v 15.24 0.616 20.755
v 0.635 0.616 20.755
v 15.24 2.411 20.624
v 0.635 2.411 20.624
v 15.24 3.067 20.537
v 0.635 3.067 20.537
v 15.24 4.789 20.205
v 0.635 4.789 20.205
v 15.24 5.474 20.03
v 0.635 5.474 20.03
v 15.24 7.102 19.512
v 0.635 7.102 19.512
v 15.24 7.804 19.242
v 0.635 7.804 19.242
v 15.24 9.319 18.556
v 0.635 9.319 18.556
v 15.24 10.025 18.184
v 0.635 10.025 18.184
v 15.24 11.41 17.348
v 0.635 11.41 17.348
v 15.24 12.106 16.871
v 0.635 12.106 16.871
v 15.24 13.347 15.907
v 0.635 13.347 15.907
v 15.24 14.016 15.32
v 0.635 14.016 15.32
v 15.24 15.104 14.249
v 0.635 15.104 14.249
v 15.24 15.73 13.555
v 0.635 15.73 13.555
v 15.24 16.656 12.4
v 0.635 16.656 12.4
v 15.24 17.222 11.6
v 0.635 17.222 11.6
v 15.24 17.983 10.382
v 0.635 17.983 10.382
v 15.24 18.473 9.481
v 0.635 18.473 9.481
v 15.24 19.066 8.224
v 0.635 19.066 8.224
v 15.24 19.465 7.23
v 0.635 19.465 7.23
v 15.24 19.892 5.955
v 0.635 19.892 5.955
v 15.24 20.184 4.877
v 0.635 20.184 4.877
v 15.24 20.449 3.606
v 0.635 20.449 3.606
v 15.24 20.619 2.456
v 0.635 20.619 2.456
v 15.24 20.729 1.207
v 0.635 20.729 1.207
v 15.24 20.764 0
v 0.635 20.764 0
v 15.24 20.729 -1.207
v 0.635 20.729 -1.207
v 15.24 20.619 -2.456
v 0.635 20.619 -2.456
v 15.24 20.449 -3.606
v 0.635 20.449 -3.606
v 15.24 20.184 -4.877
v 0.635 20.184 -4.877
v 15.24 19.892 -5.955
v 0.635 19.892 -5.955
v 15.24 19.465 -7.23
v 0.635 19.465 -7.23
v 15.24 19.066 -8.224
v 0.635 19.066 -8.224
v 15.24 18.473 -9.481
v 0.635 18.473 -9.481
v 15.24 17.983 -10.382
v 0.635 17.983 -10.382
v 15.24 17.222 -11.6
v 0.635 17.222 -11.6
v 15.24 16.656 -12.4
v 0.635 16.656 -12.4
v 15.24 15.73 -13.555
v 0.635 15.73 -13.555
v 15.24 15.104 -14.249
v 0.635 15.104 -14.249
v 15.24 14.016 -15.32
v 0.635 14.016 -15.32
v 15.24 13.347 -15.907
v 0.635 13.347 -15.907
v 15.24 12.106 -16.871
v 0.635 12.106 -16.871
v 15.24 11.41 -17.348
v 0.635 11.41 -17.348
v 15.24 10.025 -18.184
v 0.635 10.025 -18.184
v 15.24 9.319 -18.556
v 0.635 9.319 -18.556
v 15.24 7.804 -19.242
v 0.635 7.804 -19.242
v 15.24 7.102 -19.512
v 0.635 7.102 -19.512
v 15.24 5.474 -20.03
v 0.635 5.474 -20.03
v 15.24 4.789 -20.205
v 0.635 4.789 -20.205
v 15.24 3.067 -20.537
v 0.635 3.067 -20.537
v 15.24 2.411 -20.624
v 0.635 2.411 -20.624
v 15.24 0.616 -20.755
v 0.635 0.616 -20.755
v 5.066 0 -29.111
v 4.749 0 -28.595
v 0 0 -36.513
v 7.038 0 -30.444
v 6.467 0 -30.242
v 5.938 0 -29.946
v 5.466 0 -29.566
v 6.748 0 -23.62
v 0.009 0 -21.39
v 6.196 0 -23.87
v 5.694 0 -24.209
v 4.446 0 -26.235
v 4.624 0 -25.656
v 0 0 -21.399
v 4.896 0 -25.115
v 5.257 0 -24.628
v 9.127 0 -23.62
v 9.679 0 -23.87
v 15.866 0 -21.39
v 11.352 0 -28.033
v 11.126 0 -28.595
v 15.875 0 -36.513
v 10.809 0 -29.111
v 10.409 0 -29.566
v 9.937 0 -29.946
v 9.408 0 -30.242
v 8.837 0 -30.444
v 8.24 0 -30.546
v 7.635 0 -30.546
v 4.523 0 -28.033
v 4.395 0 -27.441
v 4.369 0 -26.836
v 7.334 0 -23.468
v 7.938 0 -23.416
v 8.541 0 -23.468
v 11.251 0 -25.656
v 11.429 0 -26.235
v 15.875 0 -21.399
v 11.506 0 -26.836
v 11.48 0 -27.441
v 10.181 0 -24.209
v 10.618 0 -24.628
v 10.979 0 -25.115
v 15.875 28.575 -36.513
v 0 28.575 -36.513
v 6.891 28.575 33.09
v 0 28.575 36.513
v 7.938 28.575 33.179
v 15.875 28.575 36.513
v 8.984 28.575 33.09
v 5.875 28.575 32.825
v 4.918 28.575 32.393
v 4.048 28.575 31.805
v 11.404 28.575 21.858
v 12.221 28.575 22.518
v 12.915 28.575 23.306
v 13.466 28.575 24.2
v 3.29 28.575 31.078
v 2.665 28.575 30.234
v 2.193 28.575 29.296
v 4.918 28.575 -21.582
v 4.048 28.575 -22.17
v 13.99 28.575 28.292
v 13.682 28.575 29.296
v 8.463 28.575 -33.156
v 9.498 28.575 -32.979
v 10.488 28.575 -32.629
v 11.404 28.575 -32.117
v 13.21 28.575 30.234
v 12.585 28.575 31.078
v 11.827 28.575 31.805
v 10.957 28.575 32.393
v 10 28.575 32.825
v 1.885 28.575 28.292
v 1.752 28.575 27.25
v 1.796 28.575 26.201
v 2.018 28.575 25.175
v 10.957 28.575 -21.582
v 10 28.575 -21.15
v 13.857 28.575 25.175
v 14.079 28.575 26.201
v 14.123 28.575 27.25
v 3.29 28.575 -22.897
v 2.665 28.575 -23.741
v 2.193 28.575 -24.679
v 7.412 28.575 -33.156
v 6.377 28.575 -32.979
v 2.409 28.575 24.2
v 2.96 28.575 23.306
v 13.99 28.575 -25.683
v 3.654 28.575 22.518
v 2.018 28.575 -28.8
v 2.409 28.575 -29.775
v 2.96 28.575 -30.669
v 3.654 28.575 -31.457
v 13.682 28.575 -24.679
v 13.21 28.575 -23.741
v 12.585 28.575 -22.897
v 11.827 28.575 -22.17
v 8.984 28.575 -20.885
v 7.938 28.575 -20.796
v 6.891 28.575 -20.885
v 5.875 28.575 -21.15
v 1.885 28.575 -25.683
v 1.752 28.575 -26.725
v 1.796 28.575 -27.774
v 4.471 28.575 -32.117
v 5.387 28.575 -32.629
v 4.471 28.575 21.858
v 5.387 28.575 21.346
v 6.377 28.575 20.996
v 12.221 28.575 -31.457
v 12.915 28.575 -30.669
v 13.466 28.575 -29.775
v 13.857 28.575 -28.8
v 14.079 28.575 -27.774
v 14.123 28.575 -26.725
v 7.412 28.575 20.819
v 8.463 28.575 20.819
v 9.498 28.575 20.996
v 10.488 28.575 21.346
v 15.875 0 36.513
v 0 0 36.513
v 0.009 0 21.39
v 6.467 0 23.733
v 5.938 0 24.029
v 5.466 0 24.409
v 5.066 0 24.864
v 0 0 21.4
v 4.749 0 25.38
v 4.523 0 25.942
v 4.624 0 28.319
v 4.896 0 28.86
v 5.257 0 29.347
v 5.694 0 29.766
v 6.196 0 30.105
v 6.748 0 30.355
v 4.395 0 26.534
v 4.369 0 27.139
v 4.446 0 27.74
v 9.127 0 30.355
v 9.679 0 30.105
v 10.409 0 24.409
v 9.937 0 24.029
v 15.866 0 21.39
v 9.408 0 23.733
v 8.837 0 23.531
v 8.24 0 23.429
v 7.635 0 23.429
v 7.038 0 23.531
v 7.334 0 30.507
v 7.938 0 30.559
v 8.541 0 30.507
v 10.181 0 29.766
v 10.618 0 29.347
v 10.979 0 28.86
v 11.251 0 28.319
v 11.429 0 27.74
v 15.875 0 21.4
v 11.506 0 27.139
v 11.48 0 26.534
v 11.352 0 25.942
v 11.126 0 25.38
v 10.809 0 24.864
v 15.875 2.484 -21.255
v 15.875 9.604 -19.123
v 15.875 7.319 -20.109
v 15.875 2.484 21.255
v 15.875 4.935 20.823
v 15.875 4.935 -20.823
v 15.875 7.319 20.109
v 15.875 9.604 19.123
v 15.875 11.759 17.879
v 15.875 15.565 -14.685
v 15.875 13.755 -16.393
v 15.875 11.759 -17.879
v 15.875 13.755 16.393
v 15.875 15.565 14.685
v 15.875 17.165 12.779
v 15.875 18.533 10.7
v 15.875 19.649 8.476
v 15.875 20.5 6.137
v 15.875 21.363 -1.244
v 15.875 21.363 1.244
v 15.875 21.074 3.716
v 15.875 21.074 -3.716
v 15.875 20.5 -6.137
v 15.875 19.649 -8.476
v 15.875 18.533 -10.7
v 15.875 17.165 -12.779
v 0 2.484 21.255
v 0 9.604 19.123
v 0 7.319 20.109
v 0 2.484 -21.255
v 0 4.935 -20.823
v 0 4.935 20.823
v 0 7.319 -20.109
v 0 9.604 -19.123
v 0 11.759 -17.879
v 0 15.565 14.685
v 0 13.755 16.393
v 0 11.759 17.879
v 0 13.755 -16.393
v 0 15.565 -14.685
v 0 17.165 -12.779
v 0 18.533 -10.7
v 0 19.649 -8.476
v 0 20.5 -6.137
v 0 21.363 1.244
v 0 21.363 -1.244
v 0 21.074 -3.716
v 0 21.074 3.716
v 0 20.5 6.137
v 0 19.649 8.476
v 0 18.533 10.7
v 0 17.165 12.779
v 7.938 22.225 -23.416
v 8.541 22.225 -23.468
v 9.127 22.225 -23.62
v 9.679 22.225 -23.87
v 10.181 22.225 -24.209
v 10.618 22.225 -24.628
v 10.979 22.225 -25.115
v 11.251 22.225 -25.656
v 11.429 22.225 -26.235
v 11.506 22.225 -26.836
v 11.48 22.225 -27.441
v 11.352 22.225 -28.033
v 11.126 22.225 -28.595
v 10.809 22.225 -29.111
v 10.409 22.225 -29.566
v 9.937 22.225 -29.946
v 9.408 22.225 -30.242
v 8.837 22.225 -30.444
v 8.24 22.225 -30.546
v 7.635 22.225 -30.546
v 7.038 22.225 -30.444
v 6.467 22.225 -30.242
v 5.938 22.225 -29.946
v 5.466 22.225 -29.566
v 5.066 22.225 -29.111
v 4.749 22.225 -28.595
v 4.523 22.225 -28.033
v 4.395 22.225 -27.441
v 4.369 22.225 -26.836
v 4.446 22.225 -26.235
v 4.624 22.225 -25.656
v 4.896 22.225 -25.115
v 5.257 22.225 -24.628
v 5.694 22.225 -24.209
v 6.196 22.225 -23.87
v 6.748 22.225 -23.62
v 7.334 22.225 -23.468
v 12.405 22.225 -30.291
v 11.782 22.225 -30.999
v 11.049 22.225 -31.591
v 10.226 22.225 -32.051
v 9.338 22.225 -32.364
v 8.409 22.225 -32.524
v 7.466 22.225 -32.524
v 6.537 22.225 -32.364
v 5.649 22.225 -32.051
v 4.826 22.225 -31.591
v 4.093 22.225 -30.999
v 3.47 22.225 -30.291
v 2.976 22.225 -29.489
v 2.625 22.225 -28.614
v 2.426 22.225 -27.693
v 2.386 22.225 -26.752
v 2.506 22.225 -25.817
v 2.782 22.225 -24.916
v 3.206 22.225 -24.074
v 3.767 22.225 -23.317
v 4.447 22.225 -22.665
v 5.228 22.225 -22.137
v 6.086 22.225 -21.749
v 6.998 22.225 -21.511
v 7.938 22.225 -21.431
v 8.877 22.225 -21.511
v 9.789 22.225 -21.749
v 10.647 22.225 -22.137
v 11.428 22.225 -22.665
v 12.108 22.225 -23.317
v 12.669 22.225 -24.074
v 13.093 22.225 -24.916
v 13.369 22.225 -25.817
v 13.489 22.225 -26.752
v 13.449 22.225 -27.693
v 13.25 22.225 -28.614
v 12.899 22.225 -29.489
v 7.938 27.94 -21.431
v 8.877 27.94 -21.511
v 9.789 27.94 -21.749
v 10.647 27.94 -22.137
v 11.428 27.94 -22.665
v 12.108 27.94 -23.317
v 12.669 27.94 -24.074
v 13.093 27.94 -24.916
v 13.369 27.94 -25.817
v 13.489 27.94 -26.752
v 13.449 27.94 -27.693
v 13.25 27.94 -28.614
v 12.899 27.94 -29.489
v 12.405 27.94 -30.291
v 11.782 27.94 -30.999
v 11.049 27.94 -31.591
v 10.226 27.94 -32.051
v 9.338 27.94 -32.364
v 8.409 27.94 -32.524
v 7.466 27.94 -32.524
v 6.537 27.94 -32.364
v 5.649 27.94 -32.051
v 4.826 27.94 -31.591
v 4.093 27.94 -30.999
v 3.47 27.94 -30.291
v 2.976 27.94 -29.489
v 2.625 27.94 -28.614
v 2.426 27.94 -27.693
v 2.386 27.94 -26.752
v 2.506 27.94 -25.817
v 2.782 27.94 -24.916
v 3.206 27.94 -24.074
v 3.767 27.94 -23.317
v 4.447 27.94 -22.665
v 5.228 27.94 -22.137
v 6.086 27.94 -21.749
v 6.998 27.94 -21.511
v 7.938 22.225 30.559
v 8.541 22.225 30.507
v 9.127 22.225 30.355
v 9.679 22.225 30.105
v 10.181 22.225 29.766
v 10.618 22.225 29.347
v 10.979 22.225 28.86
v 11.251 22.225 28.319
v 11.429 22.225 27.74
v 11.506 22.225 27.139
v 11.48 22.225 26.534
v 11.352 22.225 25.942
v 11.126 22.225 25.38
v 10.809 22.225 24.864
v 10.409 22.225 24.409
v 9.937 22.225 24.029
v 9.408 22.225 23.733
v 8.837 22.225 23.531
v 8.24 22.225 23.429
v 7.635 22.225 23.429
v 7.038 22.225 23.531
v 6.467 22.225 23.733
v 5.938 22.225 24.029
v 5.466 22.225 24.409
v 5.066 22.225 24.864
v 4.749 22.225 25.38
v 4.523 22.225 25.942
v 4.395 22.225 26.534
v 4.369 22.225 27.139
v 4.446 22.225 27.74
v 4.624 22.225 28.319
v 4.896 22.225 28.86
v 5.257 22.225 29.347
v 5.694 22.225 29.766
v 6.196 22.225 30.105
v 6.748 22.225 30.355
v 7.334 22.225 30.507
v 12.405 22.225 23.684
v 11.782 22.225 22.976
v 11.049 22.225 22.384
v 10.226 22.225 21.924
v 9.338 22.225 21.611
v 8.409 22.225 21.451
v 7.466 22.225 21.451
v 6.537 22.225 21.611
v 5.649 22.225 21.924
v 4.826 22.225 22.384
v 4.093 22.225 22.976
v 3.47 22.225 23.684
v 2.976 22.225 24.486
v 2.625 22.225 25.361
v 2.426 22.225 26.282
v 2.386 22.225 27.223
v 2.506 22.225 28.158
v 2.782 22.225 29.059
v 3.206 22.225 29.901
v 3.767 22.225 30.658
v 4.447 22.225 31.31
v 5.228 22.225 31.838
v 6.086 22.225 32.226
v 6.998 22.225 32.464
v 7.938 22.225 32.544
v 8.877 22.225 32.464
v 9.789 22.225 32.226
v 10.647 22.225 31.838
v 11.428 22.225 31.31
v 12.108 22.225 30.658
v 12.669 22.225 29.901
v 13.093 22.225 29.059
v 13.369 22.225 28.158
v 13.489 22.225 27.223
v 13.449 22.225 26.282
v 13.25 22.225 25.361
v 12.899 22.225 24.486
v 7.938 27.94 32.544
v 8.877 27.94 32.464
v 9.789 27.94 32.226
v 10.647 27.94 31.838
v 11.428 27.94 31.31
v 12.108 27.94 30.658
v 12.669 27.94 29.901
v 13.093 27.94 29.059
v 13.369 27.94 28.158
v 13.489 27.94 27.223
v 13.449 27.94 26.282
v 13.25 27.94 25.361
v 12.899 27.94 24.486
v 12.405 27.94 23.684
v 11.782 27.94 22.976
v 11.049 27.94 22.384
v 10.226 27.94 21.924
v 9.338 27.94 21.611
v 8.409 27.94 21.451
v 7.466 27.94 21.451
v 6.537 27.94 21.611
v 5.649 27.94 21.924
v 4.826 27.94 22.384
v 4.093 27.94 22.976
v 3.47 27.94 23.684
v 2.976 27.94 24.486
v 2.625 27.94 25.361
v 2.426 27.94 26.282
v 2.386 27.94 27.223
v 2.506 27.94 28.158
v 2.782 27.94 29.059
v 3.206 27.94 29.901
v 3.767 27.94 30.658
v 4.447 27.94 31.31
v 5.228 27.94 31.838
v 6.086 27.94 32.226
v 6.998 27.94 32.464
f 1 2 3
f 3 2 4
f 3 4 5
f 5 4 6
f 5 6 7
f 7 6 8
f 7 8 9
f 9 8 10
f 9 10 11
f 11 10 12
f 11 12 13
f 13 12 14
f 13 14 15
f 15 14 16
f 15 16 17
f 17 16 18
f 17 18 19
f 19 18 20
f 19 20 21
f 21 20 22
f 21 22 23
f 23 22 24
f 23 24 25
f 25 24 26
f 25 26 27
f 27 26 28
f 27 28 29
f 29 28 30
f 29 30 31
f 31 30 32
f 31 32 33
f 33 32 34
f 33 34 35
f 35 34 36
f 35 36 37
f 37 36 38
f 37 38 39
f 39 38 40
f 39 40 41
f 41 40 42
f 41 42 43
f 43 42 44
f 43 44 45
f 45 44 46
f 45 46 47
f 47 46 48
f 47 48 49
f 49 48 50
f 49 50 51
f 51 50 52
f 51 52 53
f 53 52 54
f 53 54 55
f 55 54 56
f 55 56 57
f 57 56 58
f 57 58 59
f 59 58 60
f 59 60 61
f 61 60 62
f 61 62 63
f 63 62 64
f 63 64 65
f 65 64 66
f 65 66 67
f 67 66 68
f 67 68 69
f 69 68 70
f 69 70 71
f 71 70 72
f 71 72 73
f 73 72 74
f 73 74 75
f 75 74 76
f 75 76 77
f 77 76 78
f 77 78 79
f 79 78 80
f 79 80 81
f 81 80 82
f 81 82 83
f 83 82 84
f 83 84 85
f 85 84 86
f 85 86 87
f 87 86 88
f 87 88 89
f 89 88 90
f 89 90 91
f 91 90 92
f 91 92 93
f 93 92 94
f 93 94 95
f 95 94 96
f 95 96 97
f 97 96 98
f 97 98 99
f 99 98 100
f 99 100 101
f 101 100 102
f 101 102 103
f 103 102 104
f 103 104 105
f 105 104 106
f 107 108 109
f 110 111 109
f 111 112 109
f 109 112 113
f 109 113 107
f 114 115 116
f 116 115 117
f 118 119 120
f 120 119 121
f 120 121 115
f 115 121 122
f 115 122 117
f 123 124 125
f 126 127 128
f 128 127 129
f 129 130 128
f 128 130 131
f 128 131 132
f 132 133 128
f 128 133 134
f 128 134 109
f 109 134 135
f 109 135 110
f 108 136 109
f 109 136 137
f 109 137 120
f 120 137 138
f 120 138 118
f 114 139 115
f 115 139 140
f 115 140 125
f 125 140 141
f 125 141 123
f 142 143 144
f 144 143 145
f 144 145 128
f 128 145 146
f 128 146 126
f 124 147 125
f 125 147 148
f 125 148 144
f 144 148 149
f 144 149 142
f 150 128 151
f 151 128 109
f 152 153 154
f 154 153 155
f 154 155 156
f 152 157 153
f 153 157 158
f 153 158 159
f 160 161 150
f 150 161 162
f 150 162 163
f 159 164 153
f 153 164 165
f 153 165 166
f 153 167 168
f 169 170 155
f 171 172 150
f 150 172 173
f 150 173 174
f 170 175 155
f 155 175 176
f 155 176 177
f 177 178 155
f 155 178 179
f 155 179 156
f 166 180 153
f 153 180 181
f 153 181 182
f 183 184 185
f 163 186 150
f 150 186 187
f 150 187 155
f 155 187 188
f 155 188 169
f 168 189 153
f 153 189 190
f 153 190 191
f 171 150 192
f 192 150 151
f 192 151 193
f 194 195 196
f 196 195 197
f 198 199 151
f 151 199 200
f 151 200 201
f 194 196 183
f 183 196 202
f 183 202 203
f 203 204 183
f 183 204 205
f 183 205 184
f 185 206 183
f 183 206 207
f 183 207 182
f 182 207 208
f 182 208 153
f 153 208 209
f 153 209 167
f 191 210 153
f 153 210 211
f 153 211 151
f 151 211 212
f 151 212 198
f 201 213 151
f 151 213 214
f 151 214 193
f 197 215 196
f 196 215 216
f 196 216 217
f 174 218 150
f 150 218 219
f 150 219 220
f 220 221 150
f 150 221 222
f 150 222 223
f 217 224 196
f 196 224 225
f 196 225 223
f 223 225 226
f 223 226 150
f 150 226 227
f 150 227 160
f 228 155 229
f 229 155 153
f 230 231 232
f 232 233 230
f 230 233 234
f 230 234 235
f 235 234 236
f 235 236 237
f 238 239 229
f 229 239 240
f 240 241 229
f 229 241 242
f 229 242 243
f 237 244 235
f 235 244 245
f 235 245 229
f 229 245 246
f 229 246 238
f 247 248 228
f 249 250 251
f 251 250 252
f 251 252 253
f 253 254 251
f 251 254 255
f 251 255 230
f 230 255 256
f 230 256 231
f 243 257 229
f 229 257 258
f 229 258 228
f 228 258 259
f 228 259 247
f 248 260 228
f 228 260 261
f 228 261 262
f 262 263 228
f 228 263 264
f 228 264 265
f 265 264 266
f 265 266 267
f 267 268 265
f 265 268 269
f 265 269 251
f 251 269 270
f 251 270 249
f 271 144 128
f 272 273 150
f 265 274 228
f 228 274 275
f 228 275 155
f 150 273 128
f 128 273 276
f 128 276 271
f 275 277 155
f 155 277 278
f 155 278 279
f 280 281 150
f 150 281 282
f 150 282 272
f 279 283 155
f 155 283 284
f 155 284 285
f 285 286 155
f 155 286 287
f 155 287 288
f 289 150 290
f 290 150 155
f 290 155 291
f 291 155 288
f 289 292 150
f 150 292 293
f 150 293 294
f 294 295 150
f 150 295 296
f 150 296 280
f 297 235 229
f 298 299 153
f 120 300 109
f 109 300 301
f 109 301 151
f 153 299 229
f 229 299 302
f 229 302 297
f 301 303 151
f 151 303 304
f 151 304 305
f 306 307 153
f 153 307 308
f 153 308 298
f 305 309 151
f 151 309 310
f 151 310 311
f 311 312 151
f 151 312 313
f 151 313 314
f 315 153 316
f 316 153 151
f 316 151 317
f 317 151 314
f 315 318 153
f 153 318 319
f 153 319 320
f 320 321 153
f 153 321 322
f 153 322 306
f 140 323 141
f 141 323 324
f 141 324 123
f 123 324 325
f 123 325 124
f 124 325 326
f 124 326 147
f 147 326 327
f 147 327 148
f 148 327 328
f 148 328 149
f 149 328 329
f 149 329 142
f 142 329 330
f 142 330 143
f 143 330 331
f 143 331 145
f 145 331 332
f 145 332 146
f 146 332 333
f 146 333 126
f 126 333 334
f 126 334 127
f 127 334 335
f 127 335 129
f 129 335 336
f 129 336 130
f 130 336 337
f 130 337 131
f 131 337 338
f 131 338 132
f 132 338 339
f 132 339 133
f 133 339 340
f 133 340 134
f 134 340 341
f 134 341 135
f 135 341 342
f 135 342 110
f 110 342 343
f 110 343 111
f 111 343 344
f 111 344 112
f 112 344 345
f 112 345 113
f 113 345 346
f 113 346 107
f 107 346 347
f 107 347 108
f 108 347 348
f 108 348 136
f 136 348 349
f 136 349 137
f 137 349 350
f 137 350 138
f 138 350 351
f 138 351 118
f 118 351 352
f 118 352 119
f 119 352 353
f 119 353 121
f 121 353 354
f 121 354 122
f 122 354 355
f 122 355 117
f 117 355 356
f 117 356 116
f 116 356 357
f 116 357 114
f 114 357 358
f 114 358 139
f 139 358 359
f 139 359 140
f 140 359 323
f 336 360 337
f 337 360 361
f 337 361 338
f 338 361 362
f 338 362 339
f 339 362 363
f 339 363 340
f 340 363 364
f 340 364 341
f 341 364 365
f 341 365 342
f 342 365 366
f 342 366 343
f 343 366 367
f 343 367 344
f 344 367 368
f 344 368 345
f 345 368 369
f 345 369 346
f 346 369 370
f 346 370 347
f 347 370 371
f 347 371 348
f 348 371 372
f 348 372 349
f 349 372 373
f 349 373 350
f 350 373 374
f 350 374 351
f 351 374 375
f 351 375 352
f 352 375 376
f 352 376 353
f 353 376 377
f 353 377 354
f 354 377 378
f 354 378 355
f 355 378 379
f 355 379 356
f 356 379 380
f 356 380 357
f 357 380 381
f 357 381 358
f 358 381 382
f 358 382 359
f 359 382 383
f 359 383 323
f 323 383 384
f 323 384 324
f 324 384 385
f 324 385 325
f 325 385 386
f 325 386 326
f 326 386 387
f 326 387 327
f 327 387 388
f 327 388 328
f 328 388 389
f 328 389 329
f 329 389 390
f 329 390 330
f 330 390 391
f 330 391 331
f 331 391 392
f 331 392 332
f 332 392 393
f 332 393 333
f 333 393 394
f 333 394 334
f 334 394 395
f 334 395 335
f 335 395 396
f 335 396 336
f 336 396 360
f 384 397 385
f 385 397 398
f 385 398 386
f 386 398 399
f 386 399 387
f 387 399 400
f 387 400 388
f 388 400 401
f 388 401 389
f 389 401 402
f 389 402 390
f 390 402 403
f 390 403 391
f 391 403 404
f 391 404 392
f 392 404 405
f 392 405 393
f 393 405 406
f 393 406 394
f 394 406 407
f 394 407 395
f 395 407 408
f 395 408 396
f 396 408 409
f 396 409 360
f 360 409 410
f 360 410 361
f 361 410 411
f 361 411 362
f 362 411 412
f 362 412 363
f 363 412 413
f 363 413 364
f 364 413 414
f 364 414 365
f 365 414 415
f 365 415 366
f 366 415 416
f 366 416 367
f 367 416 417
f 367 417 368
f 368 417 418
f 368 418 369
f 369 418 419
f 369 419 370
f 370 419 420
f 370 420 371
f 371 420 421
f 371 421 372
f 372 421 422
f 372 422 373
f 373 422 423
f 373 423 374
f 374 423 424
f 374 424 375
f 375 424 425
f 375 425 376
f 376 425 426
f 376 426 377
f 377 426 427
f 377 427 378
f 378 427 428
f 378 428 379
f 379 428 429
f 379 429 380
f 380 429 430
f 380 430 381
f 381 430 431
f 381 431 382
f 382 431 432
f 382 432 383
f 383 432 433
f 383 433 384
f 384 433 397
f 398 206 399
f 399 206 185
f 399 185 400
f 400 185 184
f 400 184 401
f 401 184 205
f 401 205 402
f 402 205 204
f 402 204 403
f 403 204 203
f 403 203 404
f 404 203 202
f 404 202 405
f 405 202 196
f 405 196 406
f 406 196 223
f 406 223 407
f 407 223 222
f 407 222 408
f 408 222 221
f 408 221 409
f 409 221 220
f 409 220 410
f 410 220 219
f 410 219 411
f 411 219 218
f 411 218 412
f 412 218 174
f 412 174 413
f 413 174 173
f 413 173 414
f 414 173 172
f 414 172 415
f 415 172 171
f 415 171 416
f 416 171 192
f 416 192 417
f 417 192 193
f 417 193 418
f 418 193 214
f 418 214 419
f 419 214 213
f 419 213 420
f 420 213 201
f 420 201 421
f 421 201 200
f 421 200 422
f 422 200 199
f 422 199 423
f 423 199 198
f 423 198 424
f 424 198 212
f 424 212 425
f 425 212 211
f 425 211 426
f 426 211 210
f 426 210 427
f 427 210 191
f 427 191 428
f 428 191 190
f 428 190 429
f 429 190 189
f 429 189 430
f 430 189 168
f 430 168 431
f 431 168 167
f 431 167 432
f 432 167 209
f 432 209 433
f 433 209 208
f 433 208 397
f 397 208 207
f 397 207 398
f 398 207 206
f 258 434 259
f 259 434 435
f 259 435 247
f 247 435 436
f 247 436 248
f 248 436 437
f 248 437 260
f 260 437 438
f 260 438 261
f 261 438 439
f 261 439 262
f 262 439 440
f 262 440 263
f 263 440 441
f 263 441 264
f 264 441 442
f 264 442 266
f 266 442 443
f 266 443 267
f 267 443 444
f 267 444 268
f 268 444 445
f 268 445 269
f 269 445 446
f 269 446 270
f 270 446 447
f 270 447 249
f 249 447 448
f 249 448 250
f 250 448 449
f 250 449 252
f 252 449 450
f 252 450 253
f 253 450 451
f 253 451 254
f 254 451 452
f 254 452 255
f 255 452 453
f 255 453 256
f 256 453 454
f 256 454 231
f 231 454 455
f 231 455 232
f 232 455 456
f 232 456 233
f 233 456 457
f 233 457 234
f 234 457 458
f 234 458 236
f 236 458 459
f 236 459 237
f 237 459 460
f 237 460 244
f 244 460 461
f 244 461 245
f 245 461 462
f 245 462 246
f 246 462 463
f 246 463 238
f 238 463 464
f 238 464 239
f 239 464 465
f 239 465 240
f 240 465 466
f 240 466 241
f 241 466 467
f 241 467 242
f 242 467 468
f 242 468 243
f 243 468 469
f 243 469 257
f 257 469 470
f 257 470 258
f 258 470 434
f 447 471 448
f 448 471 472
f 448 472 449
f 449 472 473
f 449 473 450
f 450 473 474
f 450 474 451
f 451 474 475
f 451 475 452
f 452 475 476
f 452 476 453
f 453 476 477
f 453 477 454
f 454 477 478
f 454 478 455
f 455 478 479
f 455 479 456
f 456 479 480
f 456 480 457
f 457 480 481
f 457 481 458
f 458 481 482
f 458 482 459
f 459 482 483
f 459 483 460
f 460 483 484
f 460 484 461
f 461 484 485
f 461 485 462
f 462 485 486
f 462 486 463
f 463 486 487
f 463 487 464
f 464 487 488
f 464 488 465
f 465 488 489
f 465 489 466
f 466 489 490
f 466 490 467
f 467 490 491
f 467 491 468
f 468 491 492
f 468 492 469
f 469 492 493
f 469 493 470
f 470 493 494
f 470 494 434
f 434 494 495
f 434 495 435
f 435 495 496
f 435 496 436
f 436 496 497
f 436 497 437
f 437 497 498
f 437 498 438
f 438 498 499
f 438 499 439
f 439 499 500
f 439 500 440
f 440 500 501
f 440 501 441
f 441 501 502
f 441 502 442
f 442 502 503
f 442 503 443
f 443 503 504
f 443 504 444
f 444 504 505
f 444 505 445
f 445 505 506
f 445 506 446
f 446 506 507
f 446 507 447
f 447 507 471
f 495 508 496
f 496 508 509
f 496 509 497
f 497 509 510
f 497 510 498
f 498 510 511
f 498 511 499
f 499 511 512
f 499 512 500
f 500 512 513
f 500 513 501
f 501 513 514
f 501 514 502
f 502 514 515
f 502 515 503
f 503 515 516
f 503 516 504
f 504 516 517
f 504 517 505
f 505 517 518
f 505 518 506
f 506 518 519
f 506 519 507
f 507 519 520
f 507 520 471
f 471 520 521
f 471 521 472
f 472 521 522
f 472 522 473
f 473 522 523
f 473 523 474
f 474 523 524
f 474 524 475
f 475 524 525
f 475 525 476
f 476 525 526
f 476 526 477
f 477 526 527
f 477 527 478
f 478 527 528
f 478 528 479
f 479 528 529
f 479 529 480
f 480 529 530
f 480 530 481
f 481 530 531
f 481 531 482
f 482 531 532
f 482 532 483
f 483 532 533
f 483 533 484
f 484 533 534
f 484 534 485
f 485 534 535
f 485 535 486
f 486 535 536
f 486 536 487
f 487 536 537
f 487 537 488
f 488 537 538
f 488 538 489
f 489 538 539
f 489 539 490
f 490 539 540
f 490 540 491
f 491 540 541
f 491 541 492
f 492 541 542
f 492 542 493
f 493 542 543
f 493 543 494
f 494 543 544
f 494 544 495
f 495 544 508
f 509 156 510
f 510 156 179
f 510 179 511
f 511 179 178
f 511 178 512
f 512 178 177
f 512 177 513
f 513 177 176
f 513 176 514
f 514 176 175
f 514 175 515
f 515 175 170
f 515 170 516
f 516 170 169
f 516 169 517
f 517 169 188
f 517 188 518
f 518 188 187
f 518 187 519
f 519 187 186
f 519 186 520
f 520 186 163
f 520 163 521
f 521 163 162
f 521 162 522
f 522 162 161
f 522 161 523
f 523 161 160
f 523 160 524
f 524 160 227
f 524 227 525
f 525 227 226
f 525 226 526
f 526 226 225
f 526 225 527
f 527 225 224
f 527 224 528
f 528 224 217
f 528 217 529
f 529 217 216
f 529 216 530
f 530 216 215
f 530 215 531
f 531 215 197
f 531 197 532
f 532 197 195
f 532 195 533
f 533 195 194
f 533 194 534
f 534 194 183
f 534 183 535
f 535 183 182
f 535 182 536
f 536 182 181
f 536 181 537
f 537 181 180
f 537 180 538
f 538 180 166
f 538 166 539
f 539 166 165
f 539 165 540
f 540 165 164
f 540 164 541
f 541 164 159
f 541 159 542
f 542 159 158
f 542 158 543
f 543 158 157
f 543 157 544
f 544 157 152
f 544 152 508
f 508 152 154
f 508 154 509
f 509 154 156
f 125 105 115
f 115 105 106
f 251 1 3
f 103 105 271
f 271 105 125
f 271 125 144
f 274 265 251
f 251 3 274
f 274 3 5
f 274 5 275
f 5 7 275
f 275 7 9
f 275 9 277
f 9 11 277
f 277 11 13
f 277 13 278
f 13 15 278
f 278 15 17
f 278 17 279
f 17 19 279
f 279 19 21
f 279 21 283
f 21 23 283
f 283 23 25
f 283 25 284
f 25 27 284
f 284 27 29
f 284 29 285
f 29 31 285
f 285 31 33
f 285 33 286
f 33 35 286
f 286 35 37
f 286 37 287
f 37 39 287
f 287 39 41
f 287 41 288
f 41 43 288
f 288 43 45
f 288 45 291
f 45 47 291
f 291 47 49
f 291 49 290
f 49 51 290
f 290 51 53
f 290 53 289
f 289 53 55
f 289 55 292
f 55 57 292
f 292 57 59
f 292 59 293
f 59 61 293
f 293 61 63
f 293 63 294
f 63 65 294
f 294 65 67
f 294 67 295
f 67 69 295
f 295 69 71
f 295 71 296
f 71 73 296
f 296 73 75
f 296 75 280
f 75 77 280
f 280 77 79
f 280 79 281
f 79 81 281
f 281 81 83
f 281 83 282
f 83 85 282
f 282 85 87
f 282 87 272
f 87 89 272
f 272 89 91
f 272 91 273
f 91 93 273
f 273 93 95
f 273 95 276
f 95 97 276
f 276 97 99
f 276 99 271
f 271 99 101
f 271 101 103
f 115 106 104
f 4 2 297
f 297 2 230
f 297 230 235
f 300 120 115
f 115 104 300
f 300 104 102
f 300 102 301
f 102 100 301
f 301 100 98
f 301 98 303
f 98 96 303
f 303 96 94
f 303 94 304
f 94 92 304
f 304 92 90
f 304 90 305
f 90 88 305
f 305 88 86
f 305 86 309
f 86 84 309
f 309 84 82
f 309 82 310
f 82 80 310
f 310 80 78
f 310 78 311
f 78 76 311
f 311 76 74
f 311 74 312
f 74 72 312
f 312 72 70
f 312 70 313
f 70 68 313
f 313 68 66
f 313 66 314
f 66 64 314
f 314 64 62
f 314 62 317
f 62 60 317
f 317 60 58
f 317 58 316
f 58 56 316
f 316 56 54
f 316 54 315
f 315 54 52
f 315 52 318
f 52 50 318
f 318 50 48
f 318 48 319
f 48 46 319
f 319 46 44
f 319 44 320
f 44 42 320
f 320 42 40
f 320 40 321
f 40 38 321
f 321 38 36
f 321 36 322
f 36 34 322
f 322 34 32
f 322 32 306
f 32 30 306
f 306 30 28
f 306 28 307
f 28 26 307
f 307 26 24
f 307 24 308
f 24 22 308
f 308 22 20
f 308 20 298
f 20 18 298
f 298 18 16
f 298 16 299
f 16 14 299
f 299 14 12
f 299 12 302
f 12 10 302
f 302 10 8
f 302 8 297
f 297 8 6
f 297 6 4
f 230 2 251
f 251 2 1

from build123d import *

# Parameters (mm, degrees)
BOSS_EXTRUDE1_DEPTH                           = 15.875
BOSS_EXTRUDE2_DEPTH                           = 15.875
CBORE_FOR_1_4_SOCKET_HEAD_CAP_SCREW1_AT_COUNT = 2
CBORE_FOR_1_4_SOCKET_HEAD_CAP_SCREW1_AT_PITCH = 53.975
MOVE_FACE1_BY                                 = 0.127
MOVE_FACE1_2_BY                               = 0.127
MOVE_START                                    = 28.575
MOVE_FACE2_OUTLINE_W                          = 15.875
MOVE_FACE2_OUTLINE_H                          = 73.025
MOVE_FACE2_OUTLINE_R                          = 5.55625
MOVE_FACE2_DEPTH                              = 6.35
MOVE_START_2                                  = 22.225
MOVE_FACE2_2_OUTLINE_R                        = 5.55625
MOVE_FACE2_2_OUTLINE_R_2                      = 3.57124
MOVE_FACE2_2_DEPTH                            = 6.35


with BuildPart() as part:
    # Sketch1 → Boss-Extrude1 (new body)
    with BuildSketch(Plane(origin=(0, 0, 0), x_dir=(0, 0, -1), z_dir=(1, 0, 0))):
        with BuildLine():
            Line((36.5125, 0), (20.6375, 0))
            ThreePointArc((20.6375, 0), (0, -20.6375), (-20.6375, 0))
            Line((-20.6375, 0), (-36.5125, 0))
            Line((-36.5125, 0), (-36.5125, -34.925))
            Line((-36.5125, -34.925), (36.5125, -34.925))
            Line((36.5125, -34.925), (36.5125, 0))
        make_face()
    extrude(amount=BOSS_EXTRUDE1_DEPTH)


with BuildPart() as body_2:
    # Sketch1<3> → Boss-Extrude2 (new body)
    with BuildSketch(Plane(origin=(0, 0, 0), x_dir=(0, 0, -1), z_dir=(1, 0, 0))):
        with BuildLine():
            ThreePointArc((-20.6375, 0), (0, 20.6375), (20.6375, 0))
            Line((20.6375, 0), (36.5125, 0))
            Line((36.5125, 0), (36.5125, 34.925))
            Line((36.5125, 34.925), (-36.5125, 34.925))
            Line((-36.5125, 34.925), (-36.5125, 0))
            Line((-36.5125, 0), (-20.6375, 0))
        make_face()
    extrude(amount=BOSS_EXTRUDE2_DEPTH)


with BuildPart() as cbore_for_1_4_socket_head_cap_screw1_tool:
    # Sketch4 → CBORE for 1/4 Socket Head Cap Screw1 (revolve)
    with BuildSketch(Plane(origin=(7.9375, 34.925, 26.9875), x_dir=(0, 0, 1), z_dir=(1, 0, 0))):
        Polygon((0, 0), (0, 69.85), (3.57124, 69.85), (3.57124, 6.35), (5.55625, 6.35), (5.55625, 0.635), (6.19125, 0), align=None)
    cbore_for_1_4_socket_head_cap_screw1 = revolve(axis=Axis((7.9375, 41.275, 26.9875), (0, -1, 0)))


with BuildPart() as part_1:
    add(part.part)

    # CBORE for 1/4 Socket Head Cap Screw1: cut by cbore_for_1_4_socket_head_cap_screw1_tool
    add(cbore_for_1_4_socket_head_cap_screw1_tool.part, mode=Mode.SUBTRACT)


with BuildPart() as body_2_1:
    add(body_2.part)

    # CBORE for 1/4 Socket Head Cap Screw1: cut by cbore_for_1_4_socket_head_cap_screw1_tool
    add(cbore_for_1_4_socket_head_cap_screw1_tool.part, mode=Mode.SUBTRACT)


with BuildPart() as cbore_for_1_4_socket_head_cap_screw1_at_tool:
    # CBORE for 1/4 Socket Head Cap Screw1 at: CBORE for 1/4 Socket Head Cap Screw1 ×2
    with Locations(*[(0, 0, -i * CBORE_FOR_1_4_SOCKET_HEAD_CAP_SCREW1_AT_PITCH) for i in range(1, CBORE_FOR_1_4_SOCKET_HEAD_CAP_SCREW1_AT_COUNT)]):
        add(cbore_for_1_4_socket_head_cap_screw1)


with BuildPart() as part_2:
    add(part_1.part)

    # CBORE for 1/4 Socket Head Cap Screw1 at: cut by cbore_for_1_4_socket_head_cap_screw1_at_tool
    add(cbore_for_1_4_socket_head_cap_screw1_at_tool.part, mode=Mode.SUBTRACT)

    # Move Face1 2: a curved face moved inward by 0.127
    add(Solid.thicken(part_2.faces().sort_by_distance((7.9375, -20.6375, 0))[0], -MOVE_FACE1_2_BY), mode=Mode.SUBTRACT)

    # Chamfer1
    # the kernel refuses this chamfer: 0.635 mm, written as the material it takes off along each edge
    with BuildSketch(Plane(origin=(0, 0, 0), x_dir=(0, 0.07868977926472538, -0.9968991516895122), z_dir=(0, 0.9968991516895122, 0.07868977926472538))) as chamfer1_piece_1:
        with BuildLine():
            Line((21.417460512, 0.017960512), (20.746539488, -0.652960512))
            Line((20.746539488, -0.652960512), (20.733839488, -0.652960512))
            ThreePointArc((20.733839488, -0.652960512), (20.7518, -0.326480256), (20.7518, 0))
            Line((20.7518, 0), (20.7645, 0.0127))
            ThreePointArc((20.7645, 0.0127), (21.090980256, 0.0127), (21.417460512, 0.030660512))
            Line((21.417460512, 0.030660512), (21.417460512, 0.017960512))
        make_face()
    revolve(axis=Axis((0, 0, 0), (-1, 0, 0)), revolution_arc=189.026516368, mode=Mode.SUBTRACT)
    with BuildSketch(Plane(origin=(-1.610111621, 0, -20.7645), x_dir=(0, 0, -1), z_dir=(1, 0, 0))) as chamfer1_piece_2:
        with BuildLine():
            Line((0.643801601, 0.017692029), (-0.027368853, -0.633849299))
            Line((-0.027368853, -0.633849299), (-0.040063261, -0.633472445))
            ThreePointArc((-0.040063261, -0.633472445), (-0.015119867, -0.316902726), (-0.0127, 0))
            Line((-0.0127, 0), (0, 0.0127))
            ThreePointArc((0, 0.0127), (0.3219008, 0.0127), (0.643801601, 0.030392029))
            Line((0.643801601, 0.030392029), (0.643801601, 0.017692029))
        make_face()
    extrude(amount=19.095223242, mode=Mode.SUBTRACT)
    with BuildSketch(Plane(origin=(-1.610111621, 0, 20.7645), x_dir=(0, -0.9998899044534173, -0.01483842889716635), z_dir=(1, 0, 0))) as chamfer1_piece_3:
        with BuildLine():
            Line((0.634185626, 0.017960512), (-0.027243086, -0.643468199))
            Line((-0.027243086, -0.643468199), (-0.039941687, -0.643279751))
            ThreePointArc((-0.039941687, -0.643279751), (-0.017475104, -0.321676913), (-0.012698602, 0.000188448))
            Line((-0.012698602, 0.000188448), (0.000188448, 0.012698602))
            ThreePointArc((0.000188448, 0.012698602), (0.317092192, 0.010415864), (0.633997178, 0.030659114))
            Line((0.633997178, 0.030659114), (0.634185626, 0.017960512))
        make_face()
    extrude(amount=19.095223242, mode=Mode.SUBTRACT)
    with BuildSketch(Plane(origin=(15.875, 0, 0), x_dir=(0, 0.0786897792647254, -0.9968991516895122), z_dir=(0, 0.9968991516895122, 0.0786897792647254))) as chamfer1_piece_4:
        with BuildLine():
            Line((20.746539488, 0.652960512), (21.417460512, -0.017960512))
            Line((21.417460512, -0.017960512), (21.417460512, -0.030660512))
            ThreePointArc((21.417460512, -0.030660512), (21.090980256, -0.0127), (20.7645, -0.0127))
            Line((20.7645, -0.0127), (20.7518, 0))
            ThreePointArc((20.7518, 0), (20.7518, 0.326480256), (20.733839488, 0.652960512))
            Line((20.733839488, 0.652960512), (20.746539488, 0.652960512))
        make_face()
    revolve(axis=Axis((15.875, 0, 0), (-1, 0, 0)), revolution_arc=189.026516368, mode=Mode.SUBTRACT)


with BuildPart() as body_2_2:
    add(body_2_1.part)

    # CBORE for 1/4 Socket Head Cap Screw1 at: cut by cbore_for_1_4_socket_head_cap_screw1_at_tool
    add(cbore_for_1_4_socket_head_cap_screw1_at_tool.part, mode=Mode.SUBTRACT)

    # Move Face1: a curved face moved inward by 0.127
    add(Solid.thicken(body_2_2.faces().sort_by_distance((7.9375, 20.6375, 0))[0], -MOVE_FACE1_BY), mode=Mode.SUBTRACT)

    # Move Face2: read off the stored shape, not the designer's step
    # Move Face2 outline → Move Face2 (cut)
    with BuildSketch(Plane(origin=(0, 0, 0), x_dir=(1, 0, 0), z_dir=(0, 1, 0)).offset(MOVE_START)):
        with Locations((7.9375, 0)):
            Rectangle(MOVE_FACE2_OUTLINE_W, MOVE_FACE2_OUTLINE_H)
        with Locations((7.9375, -26.9875)):
            Circle(MOVE_FACE2_OUTLINE_R, mode=Mode.SUBTRACT)
        with Locations((7.9375, 26.9875)):
            Circle(MOVE_FACE2_OUTLINE_R, mode=Mode.SUBTRACT)
    extrude(amount=MOVE_FACE2_DEPTH, mode=Mode.SUBTRACT)

    # Move Face2 2 outline → Move Face2 2 (cut)
    # profile 1 of 2: a face of its own
    with BuildSketch(Plane(origin=(0, 0, 0), x_dir=(1, 0, 0), z_dir=(0, 1, 0)).offset(MOVE_START_2)):
        with Locations((7.9375, 26.9875)):
            Circle(MOVE_FACE2_2_OUTLINE_R)
        with Locations((7.9375, 26.9875)):
            Circle(MOVE_FACE2_2_OUTLINE_R_2, mode=Mode.SUBTRACT)
    # profile 2 of 2: a face of its own
    with BuildSketch(Plane(origin=(0, 0, 0), x_dir=(1, 0, 0), z_dir=(0, 1, 0)).offset(MOVE_START_2)):
        with Locations((7.9375, -26.9875)):
            Circle(MOVE_FACE2_2_OUTLINE_R)
        with Locations((7.9375, -26.9875)):
            Circle(MOVE_FACE2_2_OUTLINE_R_2, mode=Mode.SUBTRACT)
    extrude(amount=MOVE_FACE2_2_DEPTH, mode=Mode.SUBTRACT)

    # Move Face2 3: loft between two sections, ruled curve by curve
    move_face2_3_from = [
        Edge.make_three_point_arc((7.9375, 27.94, -21.43125), (13.49375, 27.94, -26.9875), (7.9375, 27.94, -32.54375)),
        Edge.make_three_point_arc((7.9375, 27.94, -32.54375), (2.38125, 27.94, -26.9875), (7.9375, 27.94, -21.43125)),
    ]
    move_face2_3_to = [
        Edge.make_three_point_arc((7.9375, 28.575, -20.79625), (14.12875, 28.575, -26.9875), (7.9375, 28.575, -33.17875)),
        Edge.make_three_point_arc((7.9375, 28.575, -33.17875), (1.74625, 28.575, -26.9875), (7.9375, 28.575, -20.79625)),
    ]
    move_face2_3 = Solid(Shell([*[Face.make_surface_from_curves(move_face2_3_from[k], move_face2_3_to[k]) for k in range(2)], Face(Wire(move_face2_3_from)), Face(Wire(move_face2_3_to))]))
    add(move_face2_3, mode=Mode.SUBTRACT)

    # Move Face2 4: loft between two sections, ruled curve by curve
    move_face2_4_from = [
        Edge.make_three_point_arc((7.9375, 27.94, 32.54375), (13.49375, 27.94, 26.9875), (7.9375, 27.94, 21.43125)),
        Edge.make_three_point_arc((7.9375, 27.94, 21.43125), (2.38125, 27.94, 26.9875), (7.9375, 27.94, 32.54375)),
    ]
    move_face2_4_to = [
        Edge.make_three_point_arc((7.9375, 28.575, 33.17875), (14.12875, 28.575, 26.9875), (7.9375, 28.575, 20.79625)),
        Edge.make_three_point_arc((7.9375, 28.575, 20.79625), (1.74625, 28.575, 26.9875), (7.9375, 28.575, 33.17875)),
    ]
    move_face2_4 = Solid(Shell([*[Face.make_surface_from_curves(move_face2_4_from[k], move_face2_4_to[k]) for k in range(2)], Face(Wire(move_face2_4_from)), Face(Wire(move_face2_4_to))]))
    add(move_face2_4, mode=Mode.SUBTRACT)

    # Chamfer2
    # the kernel refuses this chamfer: 0.635 mm, written as the material it takes off along each edge
    with BuildSketch(Plane(origin=(0, 0, 0), x_dir=(0, -0.0786897792647251, 0.9968991516895122), z_dir=(0, -0.9968991516895122, -0.0786897792647251))) as chamfer2_piece_1:
        with BuildLine():
            Line((21.417460512, 0.017960512), (20.746539488, -0.652960512))
            Line((20.746539488, -0.652960512), (20.733839488, -0.652960512))
            ThreePointArc((20.733839488, -0.652960512), (20.7518, -0.326480256), (20.7518, 0))
            Line((20.7518, 0), (20.7645, 0.0127))
            ThreePointArc((20.7645, 0.0127), (21.090980256, 0.0127), (21.417460512, 0.030660512))
            Line((21.417460512, 0.030660512), (21.417460512, 0.017960512))
        make_face()
    revolve(axis=Axis((0, 0, 0), (-1, 0, 0)), revolution_arc=189.026516368, mode=Mode.SUBTRACT)
    with BuildSketch(Plane(origin=(-1.610111621, 0, 20.7645), x_dir=(0, 0, 1), z_dir=(1, 0, 0))) as chamfer2_piece_2:
        with BuildLine():
            Line((0.643801601, 0.017692029), (-0.027368853, -0.633849299))
            Line((-0.027368853, -0.633849299), (-0.040063261, -0.633472445))
            ThreePointArc((-0.040063261, -0.633472445), (-0.015119867, -0.316902726), (-0.0127, 0))
            Line((-0.0127, 0), (0, 0.0127))
            ThreePointArc((0, 0.0127), (0.3219008, 0.0127), (0.643801601, 0.030392029))
            Line((0.643801601, 0.030392029), (0.643801601, 0.017692029))
        make_face()
    extrude(amount=19.095223242, mode=Mode.SUBTRACT)
    with BuildSketch(Plane(origin=(-1.610111621, 0, -20.7645), x_dir=(0, 0.9998899044534173, 0.014838428897166573), z_dir=(1, 0, 0))) as chamfer2_piece_3:
        with BuildLine():
            Line((0.634185626, 0.017960512), (-0.027243086, -0.643468199))
            Line((-0.027243086, -0.643468199), (-0.039941687, -0.643279751))
            ThreePointArc((-0.039941687, -0.643279751), (-0.017475104, -0.321676913), (-0.012698602, 0.000188448))
            Line((-0.012698602, 0.000188448), (0.000188448, 0.012698602))
            ThreePointArc((0.000188448, 0.012698602), (0.317092192, 0.010415864), (0.633997178, 0.030659114))
            Line((0.633997178, 0.030659114), (0.634185626, 0.017960512))
        make_face()
    extrude(amount=19.095223242, mode=Mode.SUBTRACT)
    with BuildSketch(Plane(origin=(15.875, 0, 0), x_dir=(0, -0.07868977926472513, 0.9968991516895122), z_dir=(0, -0.9968991516895122, -0.07868977926472513))) as chamfer2_piece_4:
        with BuildLine():
            Line((20.746539488, 0.652960512), (21.417460512, -0.017960512))
            Line((21.417460512, -0.017960512), (21.417460512, -0.030660512))
            ThreePointArc((21.417460512, -0.030660512), (21.090980256, -0.0127), (20.7645, -0.0127))
            Line((20.7645, -0.0127), (20.7518, 0))
            ThreePointArc((20.7518, 0), (20.7518, 0.326480256), (20.733839488, 0.652960512))
            Line((20.733839488, 0.652960512), (20.746539488, 0.652960512))
        make_face()
    revolve(axis=Axis((15.875, 0, 0), (-1, 0, 0)), revolution_arc=189.026516368, mode=Mode.SUBTRACT)


solid = body_2_2.part
